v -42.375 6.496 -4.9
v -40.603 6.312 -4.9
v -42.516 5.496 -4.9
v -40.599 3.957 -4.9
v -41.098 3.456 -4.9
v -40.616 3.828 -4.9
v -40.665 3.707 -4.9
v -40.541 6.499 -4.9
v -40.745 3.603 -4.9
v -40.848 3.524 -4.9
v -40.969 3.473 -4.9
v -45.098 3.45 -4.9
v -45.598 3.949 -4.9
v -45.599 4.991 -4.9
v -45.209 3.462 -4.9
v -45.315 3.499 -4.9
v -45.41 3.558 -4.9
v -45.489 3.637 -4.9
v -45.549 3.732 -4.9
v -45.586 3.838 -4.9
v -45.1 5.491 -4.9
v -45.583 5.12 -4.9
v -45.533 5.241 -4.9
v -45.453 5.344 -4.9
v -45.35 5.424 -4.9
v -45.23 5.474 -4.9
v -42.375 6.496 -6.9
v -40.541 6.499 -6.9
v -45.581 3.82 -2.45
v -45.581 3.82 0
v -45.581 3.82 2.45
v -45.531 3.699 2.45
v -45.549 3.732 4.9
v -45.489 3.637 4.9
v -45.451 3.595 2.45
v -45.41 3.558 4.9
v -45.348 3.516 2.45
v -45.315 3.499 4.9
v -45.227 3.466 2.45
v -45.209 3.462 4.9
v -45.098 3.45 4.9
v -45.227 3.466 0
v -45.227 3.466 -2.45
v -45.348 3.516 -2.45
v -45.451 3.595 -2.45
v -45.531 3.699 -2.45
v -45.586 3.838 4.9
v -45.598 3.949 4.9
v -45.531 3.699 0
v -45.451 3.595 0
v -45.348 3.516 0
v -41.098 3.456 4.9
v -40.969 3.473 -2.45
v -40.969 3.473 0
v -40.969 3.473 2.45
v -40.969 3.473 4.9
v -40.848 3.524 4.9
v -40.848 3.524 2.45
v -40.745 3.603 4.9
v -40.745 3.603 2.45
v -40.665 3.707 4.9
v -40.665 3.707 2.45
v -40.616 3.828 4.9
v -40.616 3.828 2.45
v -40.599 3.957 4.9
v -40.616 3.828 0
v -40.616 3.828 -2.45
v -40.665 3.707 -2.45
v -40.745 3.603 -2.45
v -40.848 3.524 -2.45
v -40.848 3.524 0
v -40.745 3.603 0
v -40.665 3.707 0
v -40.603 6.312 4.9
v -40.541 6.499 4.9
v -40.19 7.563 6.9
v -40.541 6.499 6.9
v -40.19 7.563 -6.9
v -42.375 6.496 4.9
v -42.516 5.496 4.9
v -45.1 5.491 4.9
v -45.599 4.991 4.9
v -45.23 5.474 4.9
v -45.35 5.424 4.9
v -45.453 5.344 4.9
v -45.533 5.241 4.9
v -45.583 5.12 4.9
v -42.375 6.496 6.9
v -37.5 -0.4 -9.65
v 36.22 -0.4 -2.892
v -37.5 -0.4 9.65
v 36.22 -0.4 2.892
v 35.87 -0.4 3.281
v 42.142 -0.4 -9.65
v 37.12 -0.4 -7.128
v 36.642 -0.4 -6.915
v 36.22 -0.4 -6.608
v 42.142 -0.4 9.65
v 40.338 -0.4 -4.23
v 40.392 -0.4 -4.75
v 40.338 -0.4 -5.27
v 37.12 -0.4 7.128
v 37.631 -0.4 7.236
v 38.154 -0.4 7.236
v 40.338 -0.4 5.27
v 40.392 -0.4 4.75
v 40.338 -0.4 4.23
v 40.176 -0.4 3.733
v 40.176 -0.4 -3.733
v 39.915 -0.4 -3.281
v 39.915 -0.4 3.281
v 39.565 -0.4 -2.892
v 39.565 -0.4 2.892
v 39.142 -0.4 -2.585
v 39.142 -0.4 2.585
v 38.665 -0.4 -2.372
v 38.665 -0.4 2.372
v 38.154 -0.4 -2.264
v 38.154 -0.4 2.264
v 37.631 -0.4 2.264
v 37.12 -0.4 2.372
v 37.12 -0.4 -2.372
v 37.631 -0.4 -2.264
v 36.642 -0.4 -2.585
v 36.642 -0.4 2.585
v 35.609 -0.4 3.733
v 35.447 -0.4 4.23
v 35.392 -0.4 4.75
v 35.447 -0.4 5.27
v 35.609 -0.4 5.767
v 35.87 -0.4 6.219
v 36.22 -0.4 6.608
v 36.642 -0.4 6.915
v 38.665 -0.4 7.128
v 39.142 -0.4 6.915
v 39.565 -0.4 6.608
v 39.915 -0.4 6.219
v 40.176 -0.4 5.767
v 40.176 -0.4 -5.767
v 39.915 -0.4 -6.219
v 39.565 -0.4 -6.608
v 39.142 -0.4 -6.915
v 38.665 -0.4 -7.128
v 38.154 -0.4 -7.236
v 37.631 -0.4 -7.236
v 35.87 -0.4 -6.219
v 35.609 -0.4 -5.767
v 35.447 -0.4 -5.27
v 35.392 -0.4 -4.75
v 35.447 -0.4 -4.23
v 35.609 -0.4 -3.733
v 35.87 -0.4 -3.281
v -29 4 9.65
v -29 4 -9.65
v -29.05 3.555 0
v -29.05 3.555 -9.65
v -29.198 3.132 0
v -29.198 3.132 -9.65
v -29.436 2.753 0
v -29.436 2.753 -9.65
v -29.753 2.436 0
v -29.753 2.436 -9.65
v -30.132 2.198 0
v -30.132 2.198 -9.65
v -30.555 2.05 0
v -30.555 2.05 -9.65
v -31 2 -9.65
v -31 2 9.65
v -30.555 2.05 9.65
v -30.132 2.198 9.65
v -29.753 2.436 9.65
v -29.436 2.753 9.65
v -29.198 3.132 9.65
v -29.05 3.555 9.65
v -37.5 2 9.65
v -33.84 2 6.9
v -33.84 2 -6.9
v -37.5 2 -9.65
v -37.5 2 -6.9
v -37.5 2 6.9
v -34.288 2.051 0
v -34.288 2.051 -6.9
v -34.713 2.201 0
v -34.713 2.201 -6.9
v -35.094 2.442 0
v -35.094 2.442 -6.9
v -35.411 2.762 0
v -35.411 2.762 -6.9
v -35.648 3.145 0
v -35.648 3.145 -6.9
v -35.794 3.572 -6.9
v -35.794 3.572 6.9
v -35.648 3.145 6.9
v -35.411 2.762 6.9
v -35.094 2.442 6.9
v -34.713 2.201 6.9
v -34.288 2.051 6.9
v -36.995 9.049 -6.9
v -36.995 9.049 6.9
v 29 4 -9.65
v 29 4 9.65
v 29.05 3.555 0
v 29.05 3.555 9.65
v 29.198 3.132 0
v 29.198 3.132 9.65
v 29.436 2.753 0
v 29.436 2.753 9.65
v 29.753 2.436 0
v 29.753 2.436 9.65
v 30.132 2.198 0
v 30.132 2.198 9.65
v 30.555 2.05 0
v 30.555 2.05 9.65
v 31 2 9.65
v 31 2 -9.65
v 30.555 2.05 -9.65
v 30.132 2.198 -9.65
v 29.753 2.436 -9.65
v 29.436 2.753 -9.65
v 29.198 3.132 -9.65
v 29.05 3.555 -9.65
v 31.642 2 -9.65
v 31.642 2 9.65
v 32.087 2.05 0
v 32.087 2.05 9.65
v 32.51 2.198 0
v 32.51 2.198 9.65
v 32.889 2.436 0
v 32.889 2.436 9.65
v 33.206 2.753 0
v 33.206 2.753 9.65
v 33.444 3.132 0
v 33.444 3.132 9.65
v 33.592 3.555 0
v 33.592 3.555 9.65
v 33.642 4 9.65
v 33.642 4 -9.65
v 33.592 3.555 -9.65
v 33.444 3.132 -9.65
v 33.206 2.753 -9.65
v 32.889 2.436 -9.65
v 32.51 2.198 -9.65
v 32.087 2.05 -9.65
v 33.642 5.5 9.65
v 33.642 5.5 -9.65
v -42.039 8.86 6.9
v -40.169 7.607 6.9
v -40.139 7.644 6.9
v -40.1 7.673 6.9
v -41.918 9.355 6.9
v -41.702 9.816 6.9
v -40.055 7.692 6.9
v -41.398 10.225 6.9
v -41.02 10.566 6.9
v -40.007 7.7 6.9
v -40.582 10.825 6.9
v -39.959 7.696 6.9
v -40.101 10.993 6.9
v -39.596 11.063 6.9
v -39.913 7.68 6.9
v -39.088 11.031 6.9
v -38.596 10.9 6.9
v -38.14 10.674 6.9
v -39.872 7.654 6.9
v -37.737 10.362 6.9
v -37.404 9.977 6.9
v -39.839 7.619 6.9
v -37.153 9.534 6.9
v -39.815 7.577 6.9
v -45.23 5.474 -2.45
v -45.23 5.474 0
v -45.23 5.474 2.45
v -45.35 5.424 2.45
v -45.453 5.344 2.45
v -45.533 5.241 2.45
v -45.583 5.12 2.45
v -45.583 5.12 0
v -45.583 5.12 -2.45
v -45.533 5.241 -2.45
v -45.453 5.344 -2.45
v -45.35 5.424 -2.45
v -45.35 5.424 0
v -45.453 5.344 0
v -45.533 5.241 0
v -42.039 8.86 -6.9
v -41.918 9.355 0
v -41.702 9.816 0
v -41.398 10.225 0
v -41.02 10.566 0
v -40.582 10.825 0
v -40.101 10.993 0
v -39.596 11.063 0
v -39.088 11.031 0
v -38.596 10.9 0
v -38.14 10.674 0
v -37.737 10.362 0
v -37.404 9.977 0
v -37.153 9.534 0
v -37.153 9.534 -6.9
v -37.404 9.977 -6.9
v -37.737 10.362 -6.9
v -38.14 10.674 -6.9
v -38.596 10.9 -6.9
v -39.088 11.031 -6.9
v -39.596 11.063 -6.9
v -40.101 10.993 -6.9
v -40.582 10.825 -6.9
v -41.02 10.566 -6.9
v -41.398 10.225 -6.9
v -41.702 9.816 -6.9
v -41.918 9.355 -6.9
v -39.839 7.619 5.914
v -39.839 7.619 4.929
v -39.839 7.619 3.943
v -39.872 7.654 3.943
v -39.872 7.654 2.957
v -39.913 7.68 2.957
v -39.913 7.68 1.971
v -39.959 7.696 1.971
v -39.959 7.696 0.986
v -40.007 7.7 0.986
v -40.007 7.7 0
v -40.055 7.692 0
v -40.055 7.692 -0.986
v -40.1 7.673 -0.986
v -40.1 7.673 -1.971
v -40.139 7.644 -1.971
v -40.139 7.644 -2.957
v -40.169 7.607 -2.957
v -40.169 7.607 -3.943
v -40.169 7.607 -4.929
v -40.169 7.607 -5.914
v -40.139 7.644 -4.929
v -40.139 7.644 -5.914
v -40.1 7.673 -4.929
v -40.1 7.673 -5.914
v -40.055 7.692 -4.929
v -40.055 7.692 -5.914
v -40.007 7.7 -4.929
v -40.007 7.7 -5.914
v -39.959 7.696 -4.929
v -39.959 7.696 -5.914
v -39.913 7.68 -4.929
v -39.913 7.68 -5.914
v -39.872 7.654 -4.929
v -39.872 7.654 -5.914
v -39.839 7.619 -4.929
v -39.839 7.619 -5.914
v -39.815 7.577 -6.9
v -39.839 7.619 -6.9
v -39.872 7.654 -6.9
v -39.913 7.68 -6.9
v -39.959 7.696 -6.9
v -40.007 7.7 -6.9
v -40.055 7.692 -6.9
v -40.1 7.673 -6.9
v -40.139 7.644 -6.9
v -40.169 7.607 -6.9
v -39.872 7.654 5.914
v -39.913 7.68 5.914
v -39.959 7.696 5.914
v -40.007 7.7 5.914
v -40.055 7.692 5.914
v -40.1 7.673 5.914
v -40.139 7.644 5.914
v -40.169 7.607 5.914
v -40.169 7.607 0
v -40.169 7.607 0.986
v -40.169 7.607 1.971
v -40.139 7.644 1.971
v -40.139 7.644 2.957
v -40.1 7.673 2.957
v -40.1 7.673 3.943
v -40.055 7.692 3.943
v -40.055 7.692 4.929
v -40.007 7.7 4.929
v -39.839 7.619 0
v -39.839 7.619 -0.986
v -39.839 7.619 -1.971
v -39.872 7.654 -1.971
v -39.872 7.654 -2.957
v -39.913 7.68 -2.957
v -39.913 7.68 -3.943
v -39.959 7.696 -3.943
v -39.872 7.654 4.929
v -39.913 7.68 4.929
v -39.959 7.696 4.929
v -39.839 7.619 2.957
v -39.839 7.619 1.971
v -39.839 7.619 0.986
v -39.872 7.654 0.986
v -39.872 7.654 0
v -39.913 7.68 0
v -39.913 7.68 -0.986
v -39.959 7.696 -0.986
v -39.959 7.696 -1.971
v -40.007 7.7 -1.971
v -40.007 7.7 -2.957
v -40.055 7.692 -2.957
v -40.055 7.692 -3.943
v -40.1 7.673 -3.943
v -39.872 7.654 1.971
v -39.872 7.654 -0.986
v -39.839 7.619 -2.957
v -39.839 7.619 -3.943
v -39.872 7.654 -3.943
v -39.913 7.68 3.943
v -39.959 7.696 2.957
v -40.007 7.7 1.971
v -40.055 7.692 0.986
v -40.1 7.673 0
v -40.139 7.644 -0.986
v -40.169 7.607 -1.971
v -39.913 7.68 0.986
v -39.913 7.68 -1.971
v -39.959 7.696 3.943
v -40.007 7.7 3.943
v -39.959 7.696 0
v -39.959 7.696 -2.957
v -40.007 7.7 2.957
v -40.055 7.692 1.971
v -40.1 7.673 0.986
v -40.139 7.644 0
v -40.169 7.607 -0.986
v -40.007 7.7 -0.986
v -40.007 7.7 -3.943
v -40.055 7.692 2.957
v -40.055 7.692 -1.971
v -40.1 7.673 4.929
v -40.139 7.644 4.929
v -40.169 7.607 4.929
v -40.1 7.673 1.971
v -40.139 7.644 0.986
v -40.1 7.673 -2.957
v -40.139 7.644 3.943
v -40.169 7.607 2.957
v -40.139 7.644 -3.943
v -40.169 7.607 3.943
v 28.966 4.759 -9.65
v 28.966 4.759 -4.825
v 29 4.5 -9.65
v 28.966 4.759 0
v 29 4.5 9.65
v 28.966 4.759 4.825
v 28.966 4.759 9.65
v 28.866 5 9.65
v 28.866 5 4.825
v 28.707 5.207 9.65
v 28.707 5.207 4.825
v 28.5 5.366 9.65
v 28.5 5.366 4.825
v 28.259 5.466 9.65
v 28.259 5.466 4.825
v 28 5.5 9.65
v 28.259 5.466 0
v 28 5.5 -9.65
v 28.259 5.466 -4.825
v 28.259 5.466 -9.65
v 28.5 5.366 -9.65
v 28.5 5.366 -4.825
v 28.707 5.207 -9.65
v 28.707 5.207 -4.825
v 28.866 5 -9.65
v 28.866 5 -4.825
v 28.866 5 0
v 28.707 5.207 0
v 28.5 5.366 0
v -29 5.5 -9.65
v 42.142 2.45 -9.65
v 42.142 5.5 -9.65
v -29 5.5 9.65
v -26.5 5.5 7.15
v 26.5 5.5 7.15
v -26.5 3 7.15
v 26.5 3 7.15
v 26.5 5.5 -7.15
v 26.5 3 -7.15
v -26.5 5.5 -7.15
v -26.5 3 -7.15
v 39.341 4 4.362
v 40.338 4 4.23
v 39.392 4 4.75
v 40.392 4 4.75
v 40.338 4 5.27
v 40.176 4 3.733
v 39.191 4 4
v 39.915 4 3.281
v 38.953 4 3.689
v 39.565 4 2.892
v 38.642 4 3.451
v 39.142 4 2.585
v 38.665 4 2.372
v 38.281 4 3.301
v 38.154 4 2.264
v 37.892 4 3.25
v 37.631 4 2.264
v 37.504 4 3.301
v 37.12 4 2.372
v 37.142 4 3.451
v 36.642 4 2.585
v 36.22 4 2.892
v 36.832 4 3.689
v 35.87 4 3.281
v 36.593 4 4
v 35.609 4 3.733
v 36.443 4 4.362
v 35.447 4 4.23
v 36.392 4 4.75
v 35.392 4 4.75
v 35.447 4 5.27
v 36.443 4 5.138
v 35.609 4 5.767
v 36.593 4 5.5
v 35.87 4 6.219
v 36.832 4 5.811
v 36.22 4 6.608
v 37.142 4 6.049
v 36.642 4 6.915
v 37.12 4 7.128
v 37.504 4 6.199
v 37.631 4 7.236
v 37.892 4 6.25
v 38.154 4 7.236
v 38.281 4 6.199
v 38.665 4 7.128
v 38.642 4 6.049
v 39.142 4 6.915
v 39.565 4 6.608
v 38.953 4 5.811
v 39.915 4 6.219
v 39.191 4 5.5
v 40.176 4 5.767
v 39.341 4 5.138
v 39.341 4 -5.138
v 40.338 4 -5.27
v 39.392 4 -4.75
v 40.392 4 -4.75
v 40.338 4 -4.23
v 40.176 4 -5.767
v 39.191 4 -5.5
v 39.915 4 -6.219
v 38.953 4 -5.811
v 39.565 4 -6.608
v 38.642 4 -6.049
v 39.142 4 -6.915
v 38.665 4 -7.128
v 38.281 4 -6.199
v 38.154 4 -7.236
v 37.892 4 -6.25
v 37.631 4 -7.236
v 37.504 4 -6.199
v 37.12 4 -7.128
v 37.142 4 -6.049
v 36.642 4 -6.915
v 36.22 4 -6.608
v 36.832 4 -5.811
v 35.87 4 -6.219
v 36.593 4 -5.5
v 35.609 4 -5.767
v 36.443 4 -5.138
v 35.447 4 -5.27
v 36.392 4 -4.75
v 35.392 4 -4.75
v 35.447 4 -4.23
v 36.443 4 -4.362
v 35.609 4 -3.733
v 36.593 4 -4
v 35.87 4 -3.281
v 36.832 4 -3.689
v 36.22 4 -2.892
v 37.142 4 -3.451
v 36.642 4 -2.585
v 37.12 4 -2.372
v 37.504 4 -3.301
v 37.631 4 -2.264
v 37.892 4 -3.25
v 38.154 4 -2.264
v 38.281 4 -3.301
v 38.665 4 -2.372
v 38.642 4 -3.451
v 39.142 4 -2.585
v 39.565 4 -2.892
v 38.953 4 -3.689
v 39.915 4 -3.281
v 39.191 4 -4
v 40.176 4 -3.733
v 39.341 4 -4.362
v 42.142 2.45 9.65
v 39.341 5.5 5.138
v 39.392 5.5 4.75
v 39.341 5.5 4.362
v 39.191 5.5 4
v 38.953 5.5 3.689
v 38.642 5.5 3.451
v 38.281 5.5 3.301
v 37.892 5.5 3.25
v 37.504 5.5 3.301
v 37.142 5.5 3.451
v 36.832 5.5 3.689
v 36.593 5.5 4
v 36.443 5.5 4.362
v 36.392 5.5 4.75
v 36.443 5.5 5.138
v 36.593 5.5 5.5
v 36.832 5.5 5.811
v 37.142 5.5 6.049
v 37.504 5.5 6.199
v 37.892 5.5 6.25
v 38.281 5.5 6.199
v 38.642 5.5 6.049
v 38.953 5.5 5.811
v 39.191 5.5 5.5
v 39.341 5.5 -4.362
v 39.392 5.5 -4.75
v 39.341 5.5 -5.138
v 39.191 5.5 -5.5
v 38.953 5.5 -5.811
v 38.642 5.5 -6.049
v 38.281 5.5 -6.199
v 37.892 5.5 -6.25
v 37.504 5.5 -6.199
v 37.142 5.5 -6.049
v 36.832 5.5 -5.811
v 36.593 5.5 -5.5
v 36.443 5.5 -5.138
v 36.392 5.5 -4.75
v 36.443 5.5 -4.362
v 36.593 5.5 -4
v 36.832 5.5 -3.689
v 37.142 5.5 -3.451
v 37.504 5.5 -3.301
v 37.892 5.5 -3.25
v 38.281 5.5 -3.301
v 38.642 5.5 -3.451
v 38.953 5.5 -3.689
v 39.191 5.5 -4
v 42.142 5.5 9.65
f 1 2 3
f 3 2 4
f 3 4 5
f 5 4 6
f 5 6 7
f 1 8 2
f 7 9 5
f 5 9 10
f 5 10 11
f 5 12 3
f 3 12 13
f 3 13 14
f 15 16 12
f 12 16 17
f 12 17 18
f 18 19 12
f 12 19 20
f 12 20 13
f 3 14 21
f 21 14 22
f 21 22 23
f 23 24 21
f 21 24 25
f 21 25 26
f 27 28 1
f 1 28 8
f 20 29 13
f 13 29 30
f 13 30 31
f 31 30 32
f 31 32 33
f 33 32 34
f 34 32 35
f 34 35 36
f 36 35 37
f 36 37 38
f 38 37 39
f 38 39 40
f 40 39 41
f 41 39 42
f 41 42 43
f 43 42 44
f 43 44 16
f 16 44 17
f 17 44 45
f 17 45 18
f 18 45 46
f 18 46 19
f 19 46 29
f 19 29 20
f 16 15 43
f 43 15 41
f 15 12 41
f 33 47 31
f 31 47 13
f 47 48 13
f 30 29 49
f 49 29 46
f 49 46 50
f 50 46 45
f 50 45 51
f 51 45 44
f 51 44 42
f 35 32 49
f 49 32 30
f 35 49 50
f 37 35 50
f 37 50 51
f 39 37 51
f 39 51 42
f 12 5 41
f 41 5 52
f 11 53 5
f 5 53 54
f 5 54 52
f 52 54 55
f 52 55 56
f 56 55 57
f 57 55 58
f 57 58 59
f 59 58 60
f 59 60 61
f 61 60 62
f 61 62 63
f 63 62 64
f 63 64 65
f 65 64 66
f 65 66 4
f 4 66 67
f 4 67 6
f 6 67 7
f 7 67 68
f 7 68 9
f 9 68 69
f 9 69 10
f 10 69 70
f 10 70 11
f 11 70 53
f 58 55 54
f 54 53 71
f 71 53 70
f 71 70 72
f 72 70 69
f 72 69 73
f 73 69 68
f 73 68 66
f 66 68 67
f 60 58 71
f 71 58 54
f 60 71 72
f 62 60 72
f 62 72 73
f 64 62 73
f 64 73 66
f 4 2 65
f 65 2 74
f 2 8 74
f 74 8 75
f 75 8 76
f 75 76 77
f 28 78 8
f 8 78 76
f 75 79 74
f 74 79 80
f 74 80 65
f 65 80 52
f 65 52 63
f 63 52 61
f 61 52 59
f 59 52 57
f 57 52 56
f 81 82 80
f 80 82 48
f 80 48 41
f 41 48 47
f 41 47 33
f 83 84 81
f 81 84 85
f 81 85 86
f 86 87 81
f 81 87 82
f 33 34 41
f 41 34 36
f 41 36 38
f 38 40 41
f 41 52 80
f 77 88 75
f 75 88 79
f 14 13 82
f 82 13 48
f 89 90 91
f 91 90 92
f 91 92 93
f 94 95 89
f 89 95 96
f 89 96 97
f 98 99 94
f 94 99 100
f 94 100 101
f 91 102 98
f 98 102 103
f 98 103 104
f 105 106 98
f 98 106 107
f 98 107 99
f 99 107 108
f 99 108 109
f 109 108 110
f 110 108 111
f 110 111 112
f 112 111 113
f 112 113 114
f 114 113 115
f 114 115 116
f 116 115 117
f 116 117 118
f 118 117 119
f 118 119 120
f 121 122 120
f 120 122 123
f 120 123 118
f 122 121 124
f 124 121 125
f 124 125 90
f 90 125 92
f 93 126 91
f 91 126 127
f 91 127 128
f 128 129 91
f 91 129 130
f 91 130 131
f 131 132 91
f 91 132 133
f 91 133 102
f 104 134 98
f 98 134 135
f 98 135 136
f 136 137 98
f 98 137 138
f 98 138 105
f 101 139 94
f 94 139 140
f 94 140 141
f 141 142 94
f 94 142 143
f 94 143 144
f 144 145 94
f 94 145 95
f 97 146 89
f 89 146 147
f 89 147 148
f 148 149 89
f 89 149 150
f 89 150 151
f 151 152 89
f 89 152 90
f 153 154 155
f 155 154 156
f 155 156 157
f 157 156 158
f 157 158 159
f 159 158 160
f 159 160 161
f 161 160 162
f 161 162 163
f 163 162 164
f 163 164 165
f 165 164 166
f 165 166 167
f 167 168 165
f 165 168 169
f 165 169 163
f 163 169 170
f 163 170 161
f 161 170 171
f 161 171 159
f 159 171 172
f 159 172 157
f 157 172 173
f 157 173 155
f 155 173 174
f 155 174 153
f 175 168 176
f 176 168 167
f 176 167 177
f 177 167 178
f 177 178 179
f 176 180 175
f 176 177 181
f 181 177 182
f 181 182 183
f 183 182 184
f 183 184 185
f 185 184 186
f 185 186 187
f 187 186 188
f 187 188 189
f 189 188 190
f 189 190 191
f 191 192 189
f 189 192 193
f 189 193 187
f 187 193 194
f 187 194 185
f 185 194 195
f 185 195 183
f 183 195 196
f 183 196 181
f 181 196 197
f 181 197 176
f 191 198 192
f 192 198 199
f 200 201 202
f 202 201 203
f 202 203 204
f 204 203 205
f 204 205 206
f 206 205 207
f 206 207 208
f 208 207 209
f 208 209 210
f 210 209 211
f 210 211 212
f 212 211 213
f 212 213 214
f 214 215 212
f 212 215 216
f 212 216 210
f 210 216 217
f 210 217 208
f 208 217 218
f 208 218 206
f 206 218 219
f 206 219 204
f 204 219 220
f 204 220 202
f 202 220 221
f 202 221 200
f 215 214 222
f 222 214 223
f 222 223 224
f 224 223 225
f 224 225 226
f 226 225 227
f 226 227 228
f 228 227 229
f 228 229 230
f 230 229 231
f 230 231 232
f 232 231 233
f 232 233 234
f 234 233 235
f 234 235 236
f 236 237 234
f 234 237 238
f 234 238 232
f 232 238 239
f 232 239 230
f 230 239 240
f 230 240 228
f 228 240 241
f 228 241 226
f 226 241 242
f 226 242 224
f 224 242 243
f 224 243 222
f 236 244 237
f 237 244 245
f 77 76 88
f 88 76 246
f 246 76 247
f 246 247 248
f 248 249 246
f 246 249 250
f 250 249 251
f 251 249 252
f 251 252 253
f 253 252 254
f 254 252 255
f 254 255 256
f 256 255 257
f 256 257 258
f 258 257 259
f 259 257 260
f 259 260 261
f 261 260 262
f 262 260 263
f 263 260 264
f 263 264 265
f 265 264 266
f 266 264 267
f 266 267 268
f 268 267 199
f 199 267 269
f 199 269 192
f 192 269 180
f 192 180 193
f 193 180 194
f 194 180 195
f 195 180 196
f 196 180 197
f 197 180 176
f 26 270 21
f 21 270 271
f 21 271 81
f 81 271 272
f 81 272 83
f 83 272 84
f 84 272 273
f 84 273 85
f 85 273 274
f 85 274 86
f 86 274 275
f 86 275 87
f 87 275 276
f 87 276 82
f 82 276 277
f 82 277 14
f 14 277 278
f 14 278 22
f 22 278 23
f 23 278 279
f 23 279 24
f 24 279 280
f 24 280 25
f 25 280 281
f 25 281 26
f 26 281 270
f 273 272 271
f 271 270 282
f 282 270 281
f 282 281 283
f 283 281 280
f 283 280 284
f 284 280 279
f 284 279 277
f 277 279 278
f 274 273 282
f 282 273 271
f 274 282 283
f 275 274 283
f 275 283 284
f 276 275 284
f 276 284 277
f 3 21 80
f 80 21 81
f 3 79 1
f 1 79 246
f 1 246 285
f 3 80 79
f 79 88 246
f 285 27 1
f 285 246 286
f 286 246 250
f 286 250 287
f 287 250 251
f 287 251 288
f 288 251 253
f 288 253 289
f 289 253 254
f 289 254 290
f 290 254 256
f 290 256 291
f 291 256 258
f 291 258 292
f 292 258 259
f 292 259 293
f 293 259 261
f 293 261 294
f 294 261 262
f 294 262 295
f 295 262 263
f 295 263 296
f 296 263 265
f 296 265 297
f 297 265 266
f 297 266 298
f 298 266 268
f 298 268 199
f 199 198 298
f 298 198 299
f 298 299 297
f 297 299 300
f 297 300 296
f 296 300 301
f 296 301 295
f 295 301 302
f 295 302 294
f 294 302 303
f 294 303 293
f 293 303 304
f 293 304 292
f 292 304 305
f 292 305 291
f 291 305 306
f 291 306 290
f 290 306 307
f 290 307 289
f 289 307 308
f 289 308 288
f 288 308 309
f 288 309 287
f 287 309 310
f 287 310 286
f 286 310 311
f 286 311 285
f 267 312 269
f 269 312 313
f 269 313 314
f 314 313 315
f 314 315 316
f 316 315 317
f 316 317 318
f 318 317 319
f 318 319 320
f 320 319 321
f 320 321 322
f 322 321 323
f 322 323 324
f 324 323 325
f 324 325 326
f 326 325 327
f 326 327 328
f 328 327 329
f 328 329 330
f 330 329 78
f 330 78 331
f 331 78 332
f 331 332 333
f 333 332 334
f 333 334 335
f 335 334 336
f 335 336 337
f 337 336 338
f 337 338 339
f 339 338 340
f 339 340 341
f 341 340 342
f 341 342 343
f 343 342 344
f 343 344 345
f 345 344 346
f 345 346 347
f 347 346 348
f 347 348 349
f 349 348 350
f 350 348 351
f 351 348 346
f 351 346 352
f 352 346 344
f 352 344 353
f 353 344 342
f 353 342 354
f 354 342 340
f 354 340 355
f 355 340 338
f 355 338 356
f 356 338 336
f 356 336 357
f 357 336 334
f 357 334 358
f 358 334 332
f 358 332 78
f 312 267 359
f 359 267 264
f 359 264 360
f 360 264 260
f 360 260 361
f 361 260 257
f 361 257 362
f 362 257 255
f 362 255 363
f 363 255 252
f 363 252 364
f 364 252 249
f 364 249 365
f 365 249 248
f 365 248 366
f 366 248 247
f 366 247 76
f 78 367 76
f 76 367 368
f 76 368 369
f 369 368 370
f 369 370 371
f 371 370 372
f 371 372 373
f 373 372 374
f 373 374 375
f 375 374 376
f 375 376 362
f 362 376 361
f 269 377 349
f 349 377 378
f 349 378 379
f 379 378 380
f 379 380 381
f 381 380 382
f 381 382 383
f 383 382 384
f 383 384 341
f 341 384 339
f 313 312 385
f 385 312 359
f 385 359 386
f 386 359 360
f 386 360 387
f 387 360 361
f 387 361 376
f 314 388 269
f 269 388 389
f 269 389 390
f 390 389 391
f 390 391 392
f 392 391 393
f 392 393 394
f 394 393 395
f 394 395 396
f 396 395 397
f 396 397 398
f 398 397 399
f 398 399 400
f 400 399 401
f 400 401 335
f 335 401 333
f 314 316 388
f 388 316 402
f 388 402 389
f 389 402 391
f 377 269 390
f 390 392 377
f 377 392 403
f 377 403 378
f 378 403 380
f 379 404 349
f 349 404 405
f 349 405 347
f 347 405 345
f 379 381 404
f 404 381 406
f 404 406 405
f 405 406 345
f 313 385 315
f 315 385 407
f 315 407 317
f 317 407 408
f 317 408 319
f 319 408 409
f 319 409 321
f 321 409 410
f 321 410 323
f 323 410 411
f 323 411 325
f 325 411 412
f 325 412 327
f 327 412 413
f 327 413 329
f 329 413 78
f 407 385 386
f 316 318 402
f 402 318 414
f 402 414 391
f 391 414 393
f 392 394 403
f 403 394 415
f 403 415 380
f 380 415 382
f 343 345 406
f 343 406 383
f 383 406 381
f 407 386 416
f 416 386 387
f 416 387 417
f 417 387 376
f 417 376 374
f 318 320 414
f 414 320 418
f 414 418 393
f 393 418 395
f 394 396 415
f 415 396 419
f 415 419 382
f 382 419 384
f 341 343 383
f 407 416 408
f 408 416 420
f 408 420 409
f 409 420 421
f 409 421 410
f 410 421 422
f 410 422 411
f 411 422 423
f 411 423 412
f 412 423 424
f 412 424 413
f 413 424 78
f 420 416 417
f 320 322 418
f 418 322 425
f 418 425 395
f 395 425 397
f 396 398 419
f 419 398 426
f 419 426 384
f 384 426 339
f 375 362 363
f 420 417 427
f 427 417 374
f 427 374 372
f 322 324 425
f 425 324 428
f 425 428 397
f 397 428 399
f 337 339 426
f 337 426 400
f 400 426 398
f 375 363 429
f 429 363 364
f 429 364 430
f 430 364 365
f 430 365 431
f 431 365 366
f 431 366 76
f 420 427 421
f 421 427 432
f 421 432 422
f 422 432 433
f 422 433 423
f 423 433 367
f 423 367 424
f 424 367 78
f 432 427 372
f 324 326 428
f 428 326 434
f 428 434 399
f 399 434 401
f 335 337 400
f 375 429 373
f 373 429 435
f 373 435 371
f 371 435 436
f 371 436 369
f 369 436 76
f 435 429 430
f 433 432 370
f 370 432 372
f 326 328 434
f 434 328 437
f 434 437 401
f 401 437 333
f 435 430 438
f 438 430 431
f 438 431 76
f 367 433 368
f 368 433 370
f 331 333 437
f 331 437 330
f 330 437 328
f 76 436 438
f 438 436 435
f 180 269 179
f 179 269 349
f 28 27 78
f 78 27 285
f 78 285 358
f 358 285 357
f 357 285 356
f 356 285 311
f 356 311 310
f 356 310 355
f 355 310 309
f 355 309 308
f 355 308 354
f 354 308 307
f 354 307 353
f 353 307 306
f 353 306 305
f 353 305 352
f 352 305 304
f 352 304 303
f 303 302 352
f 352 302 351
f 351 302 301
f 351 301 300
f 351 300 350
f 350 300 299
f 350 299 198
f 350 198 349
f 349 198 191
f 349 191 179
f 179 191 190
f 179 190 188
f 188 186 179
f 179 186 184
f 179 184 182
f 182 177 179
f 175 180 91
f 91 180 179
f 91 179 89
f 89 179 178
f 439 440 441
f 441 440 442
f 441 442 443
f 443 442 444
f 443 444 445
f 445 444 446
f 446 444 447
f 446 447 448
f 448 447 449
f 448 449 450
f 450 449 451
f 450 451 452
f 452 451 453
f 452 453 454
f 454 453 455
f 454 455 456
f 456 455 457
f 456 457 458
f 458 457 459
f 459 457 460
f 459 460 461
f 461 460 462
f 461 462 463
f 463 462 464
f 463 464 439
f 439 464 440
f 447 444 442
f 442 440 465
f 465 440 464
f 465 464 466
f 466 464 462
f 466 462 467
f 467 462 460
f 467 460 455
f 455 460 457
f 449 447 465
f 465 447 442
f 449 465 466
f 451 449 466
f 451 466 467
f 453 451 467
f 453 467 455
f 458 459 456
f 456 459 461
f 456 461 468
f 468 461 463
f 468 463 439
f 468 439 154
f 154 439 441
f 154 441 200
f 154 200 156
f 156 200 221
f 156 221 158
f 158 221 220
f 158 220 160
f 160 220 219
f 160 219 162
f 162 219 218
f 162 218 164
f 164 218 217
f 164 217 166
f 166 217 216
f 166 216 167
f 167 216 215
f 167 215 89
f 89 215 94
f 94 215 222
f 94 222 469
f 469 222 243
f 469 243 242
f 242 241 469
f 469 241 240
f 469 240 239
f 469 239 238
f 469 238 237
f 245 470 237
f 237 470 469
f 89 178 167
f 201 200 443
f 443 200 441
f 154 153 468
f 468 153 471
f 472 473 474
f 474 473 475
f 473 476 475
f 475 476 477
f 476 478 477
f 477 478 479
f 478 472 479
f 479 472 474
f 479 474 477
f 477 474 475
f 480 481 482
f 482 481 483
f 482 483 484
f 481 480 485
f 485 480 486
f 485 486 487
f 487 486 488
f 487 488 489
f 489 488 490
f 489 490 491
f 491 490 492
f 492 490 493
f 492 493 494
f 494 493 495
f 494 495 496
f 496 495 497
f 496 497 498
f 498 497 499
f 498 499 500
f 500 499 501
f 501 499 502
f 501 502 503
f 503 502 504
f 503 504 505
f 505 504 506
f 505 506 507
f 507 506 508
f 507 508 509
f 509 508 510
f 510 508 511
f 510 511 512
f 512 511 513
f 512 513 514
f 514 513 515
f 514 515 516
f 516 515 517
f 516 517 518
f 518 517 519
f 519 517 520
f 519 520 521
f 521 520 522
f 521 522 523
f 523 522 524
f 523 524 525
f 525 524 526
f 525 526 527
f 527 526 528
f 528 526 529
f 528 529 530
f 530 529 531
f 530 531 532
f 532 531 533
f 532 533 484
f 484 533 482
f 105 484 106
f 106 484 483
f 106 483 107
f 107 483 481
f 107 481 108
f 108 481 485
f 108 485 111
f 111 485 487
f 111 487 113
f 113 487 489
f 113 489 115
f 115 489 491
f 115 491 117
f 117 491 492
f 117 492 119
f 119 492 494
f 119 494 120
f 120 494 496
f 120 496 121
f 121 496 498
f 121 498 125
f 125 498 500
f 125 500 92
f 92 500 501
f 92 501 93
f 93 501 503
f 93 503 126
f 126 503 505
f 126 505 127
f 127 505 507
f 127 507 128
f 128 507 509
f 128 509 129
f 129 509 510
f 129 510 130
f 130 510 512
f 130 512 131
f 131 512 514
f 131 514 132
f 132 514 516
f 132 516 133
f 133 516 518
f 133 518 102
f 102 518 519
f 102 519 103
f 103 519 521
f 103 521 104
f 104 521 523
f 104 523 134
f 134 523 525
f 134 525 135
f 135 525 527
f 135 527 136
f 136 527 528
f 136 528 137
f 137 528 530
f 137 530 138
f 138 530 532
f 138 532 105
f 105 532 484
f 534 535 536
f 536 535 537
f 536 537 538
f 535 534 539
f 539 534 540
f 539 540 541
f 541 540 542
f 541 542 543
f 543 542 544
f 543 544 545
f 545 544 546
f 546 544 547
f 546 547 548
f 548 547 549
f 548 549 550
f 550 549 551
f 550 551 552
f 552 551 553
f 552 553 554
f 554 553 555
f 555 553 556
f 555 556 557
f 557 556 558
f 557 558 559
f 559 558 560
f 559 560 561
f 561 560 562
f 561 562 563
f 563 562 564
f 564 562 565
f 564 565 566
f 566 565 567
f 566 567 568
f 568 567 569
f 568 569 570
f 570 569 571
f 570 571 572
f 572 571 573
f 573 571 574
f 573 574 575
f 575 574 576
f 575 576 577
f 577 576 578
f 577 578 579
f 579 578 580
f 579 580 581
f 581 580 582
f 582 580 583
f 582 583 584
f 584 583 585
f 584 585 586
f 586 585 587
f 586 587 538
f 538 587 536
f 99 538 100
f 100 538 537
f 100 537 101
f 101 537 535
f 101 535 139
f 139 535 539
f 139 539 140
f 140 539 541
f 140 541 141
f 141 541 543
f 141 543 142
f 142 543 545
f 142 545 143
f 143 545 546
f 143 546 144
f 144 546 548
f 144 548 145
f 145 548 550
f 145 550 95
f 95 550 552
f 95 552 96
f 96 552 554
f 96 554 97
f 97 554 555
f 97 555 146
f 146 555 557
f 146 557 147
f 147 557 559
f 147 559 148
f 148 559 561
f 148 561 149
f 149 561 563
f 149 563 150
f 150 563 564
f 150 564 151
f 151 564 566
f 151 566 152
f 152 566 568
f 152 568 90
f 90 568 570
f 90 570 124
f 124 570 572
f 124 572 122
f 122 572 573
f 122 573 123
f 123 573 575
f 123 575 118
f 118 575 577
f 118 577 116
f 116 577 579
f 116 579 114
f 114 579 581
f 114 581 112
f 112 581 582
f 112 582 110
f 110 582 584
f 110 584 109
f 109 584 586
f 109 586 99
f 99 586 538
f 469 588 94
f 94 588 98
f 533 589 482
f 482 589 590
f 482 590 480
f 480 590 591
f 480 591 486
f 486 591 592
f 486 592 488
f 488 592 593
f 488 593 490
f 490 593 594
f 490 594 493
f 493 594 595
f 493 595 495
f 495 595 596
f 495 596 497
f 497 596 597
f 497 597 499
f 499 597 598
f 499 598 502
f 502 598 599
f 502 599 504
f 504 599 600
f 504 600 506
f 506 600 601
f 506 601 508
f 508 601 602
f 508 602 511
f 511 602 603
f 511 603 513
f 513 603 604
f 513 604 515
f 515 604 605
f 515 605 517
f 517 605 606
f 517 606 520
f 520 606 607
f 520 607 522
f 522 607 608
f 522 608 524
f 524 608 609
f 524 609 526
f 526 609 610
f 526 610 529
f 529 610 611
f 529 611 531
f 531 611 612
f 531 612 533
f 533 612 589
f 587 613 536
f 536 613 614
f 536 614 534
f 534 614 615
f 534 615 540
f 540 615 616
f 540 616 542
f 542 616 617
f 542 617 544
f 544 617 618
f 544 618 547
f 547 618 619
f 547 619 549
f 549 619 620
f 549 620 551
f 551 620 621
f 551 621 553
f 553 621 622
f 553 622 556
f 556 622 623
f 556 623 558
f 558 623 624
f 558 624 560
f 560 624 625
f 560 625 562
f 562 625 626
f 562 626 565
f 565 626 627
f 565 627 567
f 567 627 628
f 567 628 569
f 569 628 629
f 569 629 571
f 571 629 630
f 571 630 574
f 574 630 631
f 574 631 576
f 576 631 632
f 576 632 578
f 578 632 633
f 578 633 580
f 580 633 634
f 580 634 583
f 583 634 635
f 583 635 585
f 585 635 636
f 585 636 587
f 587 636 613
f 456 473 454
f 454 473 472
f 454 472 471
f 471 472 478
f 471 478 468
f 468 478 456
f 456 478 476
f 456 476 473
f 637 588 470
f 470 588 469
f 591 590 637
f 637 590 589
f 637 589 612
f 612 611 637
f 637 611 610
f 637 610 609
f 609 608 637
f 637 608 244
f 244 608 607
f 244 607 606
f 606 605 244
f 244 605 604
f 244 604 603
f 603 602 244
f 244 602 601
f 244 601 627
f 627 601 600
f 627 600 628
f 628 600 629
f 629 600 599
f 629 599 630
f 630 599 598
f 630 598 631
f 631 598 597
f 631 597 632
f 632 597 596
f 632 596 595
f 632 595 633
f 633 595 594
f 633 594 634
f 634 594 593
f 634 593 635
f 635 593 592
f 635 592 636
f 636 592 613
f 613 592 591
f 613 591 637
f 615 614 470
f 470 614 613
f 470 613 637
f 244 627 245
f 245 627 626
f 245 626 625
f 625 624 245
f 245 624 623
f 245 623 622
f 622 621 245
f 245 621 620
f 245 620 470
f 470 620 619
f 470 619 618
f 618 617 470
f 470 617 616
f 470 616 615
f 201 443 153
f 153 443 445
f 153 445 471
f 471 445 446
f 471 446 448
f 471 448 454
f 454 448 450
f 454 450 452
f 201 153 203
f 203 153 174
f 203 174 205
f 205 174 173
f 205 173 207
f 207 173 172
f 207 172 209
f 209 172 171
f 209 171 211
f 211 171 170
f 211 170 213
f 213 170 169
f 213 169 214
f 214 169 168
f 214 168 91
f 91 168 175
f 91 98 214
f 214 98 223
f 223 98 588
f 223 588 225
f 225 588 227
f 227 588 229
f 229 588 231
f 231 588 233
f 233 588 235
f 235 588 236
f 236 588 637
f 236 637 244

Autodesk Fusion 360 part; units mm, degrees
sketch "Sketch1" plane through (0, 0, 0) normal (0, 1, 0) x (1, 0, 0)
  line L0 (32.5, 9.65) -> (-32.5, 9.65)
  line L1 (-32.5, 9.65) -> (-32.5, -9.65)
  line L2 (-32.5, -9.65) -> (32.5, -9.65)
  line L3 (32.5, -9.65) -> (32.5, 9.65)
  line L4 (32.5, 9.65) -> (-32.5, -9.65) construction
  line L5 (-32.5, 9.65) -> (32.5, -9.65) construction
  line L6 (32.5, 9.65) -> (34.5, 9.65)
  line L7 (34.5, 9.65) -> (34.5, -9.35)
  line L8 (34.5, -9.35) -> (32.5, -9.35)
  line L9 (32.5, -9.35) -> (32.5, 9.65)
  line L10 (-32.5, 9.65) -> (-37.5, 9.65)
  line L11 (-37.5, 9.65) -> (-37.5, -9.5)
  line L12 (-37.5, -9.5) -> (-32.5, -9.5)
  line L13 (-32.5, -9.5) -> (-32.5, 9.65)
  dimension "d1" = 65
  dimension "d2" = 19.3
  dimension "d3" = 2
  dimension "d4" = 19
  dimension "d5" = 5
extrude "Extrude1" add sketch "Sketch1" along normal blind 5.5 contours L0 L1 L2 L3 L9 L13
extrude "Extrude2" add sketch "Sketch1" along normal blind 2 contours L3 L6 L7 L8 L9
extrude "Extrude3" add sketch "Sketch1" along normal blind 2 contours L1 L10 L11 L12 L13
sketch "Sketch2" plane through (0, 0, 9.65) normal (0, 0, 1) x (1, 0, 0)
  line L0 (-32.5, 0) -> (32.5, 0)
  line L1 (34.5, 0) -> (34.5, 2)
  line L2 (34.5, 2) -> (32.5, 2)
  line L3 (32.5, 0) -> (32.5, 5.5)
  line L4 (32.5, 5.5) -> (-32.5, 5.5)
  line L5 (-32.5, 5.5) -> (-32.5, 0)
  line L6 (-32.5, 2) -> (-37.5, 2)
  line L7 (-37.5, 2) -> (-37.5, 0)
  line L8 (33.6424, 5.5) -> (42.1424, 5.5)
  line L9 (33.6424, 5.5) -> (33.6424, 2.4499)
  line L10 (42.1424, 5.5) -> (42.1424, 2.4499)
  line L11 (42.1424, 2.4499) -> (33.6424, 2.4499)
  line L12 (-32.5, 0) -> (-40.5, 0)
  line L13 (-45.0976, 3.4495) -> (-41.0979, 3.4562)
  line L14 (-40.5987, 3.957) -> (-40.6027, 6.3116)
  line L15 (-42.5164, 5.4956) -> (-45.1003, 5.4913)
  line L16 (-45.5995, 4.9908) -> (-45.5984, 3.949)
  line L17 (-37.5, 2) -> (-39.8153, 7.5767)
  line L18 (-40.1899, 7.5627) -> (-40.6027, 6.3116)
  arc A0 (-39.8153, 7.5767) -> (-40.1899, 7.5627) centre (-40, 7.5) ccw
  arc A1 (-45.1003, 5.4913) -> (-45.5995, 4.9908) centre (-45.0995, 4.9913) ccw
  arc A2 (-45.5984, 3.949) -> (-45.0976, 3.4495) centre (-45.0984, 3.9495) ccw
  arc A3 (-41.0979, 3.4562) -> (-40.5987, 3.957) centre (-41.0987, 3.9562) ccw
  line L19 (33.6424, 2.4499) -> (33.6424, 2)
  line L20 (-35.4489, 2) -> (-36.9951, 9.0494)
  arc A4 (-36.9951, 9.0494) -> (-42.0393, 8.86) centre (-39.5001, 8.4999) ccw
  line L21 (-42.0393, 8.86) -> (-42.5164, 5.4956)
  line L22 (32.5, 0) -> (34.5, 0)
  line L23 (32.5, 2) -> (32.5, 0)
  line L24 (-37.5, 0) -> (-32.5, 0)
  line L25 (-32.5, 0) -> (-32.5, 2)
  line L26 (34.5, 2) -> (34.5, 2.4499)
  point P0 (-45.5979, 3.4487)
  point P1 (-40.5979, 3.457)
  dimension "d12" = 8.5
  dimension "d41" = 8
  dimension "d42" = 5
  dimension "d44" = 0.2
  dimension "d45" = 0.5
  dimension "d46" = 0.5
  dimension "d47" = 0.5
extrude "Extrude4" add sketch "Sketch2" against normal blind 19.2 contours L1 L2 L3 L22 L23 | L2 L11 L19 L26 | L8 L9 L10 L11
extrude "Extrude5" add sketch "Sketch2" along normal blind -19.3 and the other way blind 2.5 contours L5 L6 L7 L12 L24 L25 | L1 L2 L3 L22 L23 | L2 L11 L19 L26 | L8 L9 L10 L11
fillet "Fillet1" radius 1 1 edges at (-32.5, 5.5, 0)
fillet "Fillet2" radius 1 1 edges at (32.5, 5.5, 0)
sketch "Sketch3" plane through (0, 5.5, 0) normal (0, 1, 0) x (-1, 0, 0)
  line L0 (-33.6424, 9.65) -> (-42.1424, 9.65)
  line L1 (-42.1424, 9.65) -> (-42.1424, -9.65)
  line L2 (-42.1424, -9.65) -> (-33.6424, -9.65)
  line L3 (-33.6424, -9.65) -> (-33.6424, 9.65)
  line L4 (-33.6424, 0) -> (-42.1424, 0)
  circle A0 centre (-37.8924, -4.75) radius 1.5
  circle A1 centre (-37.8924, -4.75) radius 2.5
  circle A2 centre (-37.8924, 4.75) radius 2.5
  circle A3 centre (-37.8924, 4.75) radius 1.5
  dimension "d31" = 3
  dimension "d32" = 5
extrude "Extrude6" cut sketch "Sketch3" against normal blind 6 contours A0 | A3
extrude "Extrude10" add 1 faces at (34.5, 1.4833, 3.2167) along direction (1, 0, 0) blind 7.642
extrude "Extrude7" cut sketch "Sketch3" along normal blind -5.5 and the other way blind 1.5 contours A0 | A1 | A2 | A3
sketch "Sketch6" plane through (0, 5.5, 0) normal (0, 1, 0) x (-1, 0, 0)
  line L0 (-31.5, 9.65) -> (-31.5, -9.65)
  line L1 (-31.5, -9.65) -> (31.5, -9.65)
  line L2 (31.5, -9.65) -> (31.5, 9.65)
  line L3 (31.5, 9.65) -> (-31.5, 9.65)
  line L4 (31.5, 9.65) -> (-31.5, 9.65)
  line L5 (-31.5, 9.65) -> (-31.5, -9.65)
  line L6 (-31.5, -9.65) -> (31.5, -9.65)
  line L7 (31.5, -9.65) -> (31.5, 9.65)
  line L8 (-29, -7.15) -> (29, -7.15)
  line L9 (29, -9.65) -> (29, 9.65)
  line L10 (29, 7.15) -> (-29, 7.15)
  line L11 (-29, 7.15) -> (-29, -7.15)
  line L12 (-26.5, 7.15) -> (-26.5, -7.15)
  line L13 (-29, 7.15) -> (-29, 9.65)
  line L14 (-29, -7.15) -> (-29, -9.65)
  line L15 (-31.5, 9.65) -> (-32.5, 9.65)
  line L16 (-32.5, 9.65) -> (-32.5, -9.65)
  line L17 (-32.5, -9.65) -> (-31.5, -9.65)
  line L18 (31.5, -9.65) -> (32.5, -9.65)
  line L19 (32.5, -9.65) -> (32.5, 9.65)
  line L20 (32.5, 9.65) -> (31.5, 9.65)
  line L21 (31.5, 9.65) -> (31.5, -9.65)
  line L22 (26.5, -7.15) -> (26.5, 7.15)
  line L23 (29, 0) -> (29, 7.15)
  dimension "d58" = -2.5
  dimension "d69" = -2.5
extrude "Extrude11" cut sketch "Sketch6" against normal blind 2.5 contours L8 L10 L12 L22
extrude "Extrude12" cut sketch "Sketch6" against normal blind 3.5 contours L0 L1 L3 L4 L5 L6 L11 L13 L14 | L0 L5 L15 L16 L17 | L1 L2 L3 L4 L6 L7 L9 L21 L23 | L2 L7 L18 L19 L20 L21
fillet "Fillet4" radius 1 1 edges at (29, 5.5, 0)
extrude "Extrude14" add sketch "Sketch2" along normal blind -16.55 and the other way blind 2.75 contours L5 L6 L7 L12 L24 L25 | L6 L13 L14 L15 L16 L17 L18 A0 A1 A2 A3 L20 A4 L21
extrude "Extrude15" add sketch "Sketch2" against normal blind 0.8 contours L5 L6 L7 L12 L24 L25
fillet "Fillet5" radius 2 2 edges at (33.6424, 2, 0) (29, 2, 0)
fillet "Fillet6" radius 2 2 edges at (-35.4489, 2, 0) (-29, 2, 0)
extrude "Extrude16" add 1 faces at (-13.1932, 0, 1.4591) along direction (0, -1, 0) blind 0.4
sketch "Sketch8" plane through (0, 0, 6.9) normal (0, 0, 1) x (1, 0, 0)
  line L0 (-37.5, 2) -> (-33.84, 2)
  arc A0 (-35.7936, 3.5715) -> (-33.84, 2) centre (-33.84, 4) ccw
  line L1 (-35.7936, 3.5715) -> (-36.9951, 9.0494)
  arc A1 (-36.9951, 9.0494) -> (-42.0393, 8.86) centre (-39.5001, 8.4999) ccw
  line L2 (-42.0393, 8.86) -> (-42.5164, 5.4956)
  line L3 (-42.5164, 5.4956) -> (-45.1003, 5.4913)
  arc A2 (-45.1003, 5.4913) -> (-45.5995, 4.9908) centre (-45.0995, 4.9913) ccw
  line L4 (-45.5995, 4.9908) -> (-45.5984, 3.949)
  arc A3 (-45.5984, 3.949) -> (-45.0976, 3.4495) centre (-45.0984, 3.9495) ccw
  line L5 (-45.0976, 3.4495) -> (-41.0979, 3.4562)
  arc A4 (-41.0979, 3.4562) -> (-40.5987, 3.957) centre (-41.0987, 3.9562) ccw
  line L6 (-40.5987, 3.957) -> (-40.6027, 6.3116)
  line L7 (-40.6027, 6.3116) -> (-40.1899, 7.5627)
  arc A5 (-39.8153, 7.5767) -> (-40.1899, 7.5627) centre (-40, 7.5) ccw
  line L8 (-39.8153, 7.5767) -> (-37.5, 2)
  line L9 (-40, 6.5) -> (-46.4842, 6.4892)
  line L10 (-46.4842, 6.4892) -> (-46.4774, 2.362)
  line L11 (-46.4774, 2.362) -> (-39.9747, 2.3728)
  line L12 (-39.9747, 2.3728) -> (-40, 6.5)
extrude "Extrude17" cut sketch "Sketch8" against normal blind 2 contours L2 L3 A2 L4 A3 L5 A4 L6 L7 L9 L10 L11 L12 | L2 L3 A2 L4 A3 L5 A4 L6 L7 L9
extrude "Extrude18" cut sketch "Sketch8" along normal blind -13.8 and the other way blind 11.8 contours L2 L3 A2 L4 A3 L5 A4 L6 L7 L9 L10 L11 L12 | L2 L3 A2 L4 A3 L5 A4 L6 L7 L9
